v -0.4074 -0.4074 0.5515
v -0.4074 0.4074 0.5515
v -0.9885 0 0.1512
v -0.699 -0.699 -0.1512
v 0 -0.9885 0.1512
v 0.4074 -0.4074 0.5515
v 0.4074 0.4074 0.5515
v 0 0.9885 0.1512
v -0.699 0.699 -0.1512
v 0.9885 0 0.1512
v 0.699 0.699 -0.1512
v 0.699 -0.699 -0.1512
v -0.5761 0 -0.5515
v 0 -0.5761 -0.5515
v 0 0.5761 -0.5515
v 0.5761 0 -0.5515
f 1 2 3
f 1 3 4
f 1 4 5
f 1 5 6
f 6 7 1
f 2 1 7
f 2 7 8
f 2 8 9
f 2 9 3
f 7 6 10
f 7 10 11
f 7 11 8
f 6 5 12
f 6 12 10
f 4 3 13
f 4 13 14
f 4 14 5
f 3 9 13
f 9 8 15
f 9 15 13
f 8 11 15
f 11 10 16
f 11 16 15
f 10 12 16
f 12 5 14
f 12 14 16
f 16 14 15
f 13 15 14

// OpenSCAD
polyhedron( points = [[-0.407390948929162, -0.40739109956788, 0.551500488617618], [-0.407390948892581, 0.407391175698362, 0.551500488617618], [0.407391326300504, 0.407391175625202, 0.551500488617618], [0.40739132626392, -0.40739109956788, 0.551500488617618], [-0.69897385242257, -0.698974002873321, -0.151229172794004], [-0.988498156509498, 3.81335717500525e-08, 0.151229292580017], [-0.698973852268963, 0.698974079120829, -0.151229172794005], [1.88798379734391e-07, 0.988498383208234, 0.151229292615959], [0.698974229916702, 0.698974079111288, -0.151229172592068], [0.98849853382866, 3.79603310878026e-08, 0.151229292615959], [0.698974229763099, -0.698974003170991, -0.151229172592067], [1.886251391626e-07, -0.988498307114327, 0.151229292615959], [-0.576136256504436, 3.81299101504806e-08, -0.551499545157136], [-4.32302444849927e-07, 0.576140357879525, -0.551501818724187], [0.576134856718913, -5.70835233578617e-07, -0.551499251523032], [-4.32385661796708e-07, -0.57614028173762, -0.551501818721865]], faces = [[0, 1, 5], [0, 5, 4], [0, 4, 11], [0, 11, 3], [0, 3, 2, 1], [1, 2, 7], [1, 7, 6], [1, 6, 5], [2, 3, 9], [2, 9, 8], [2, 8, 7], [3, 11, 10], [3, 10, 9], [4, 5, 12], [4, 12, 15], [4, 15, 11], [5, 6, 12], [6, 7, 13], [6, 13, 12], [7, 8, 13], [8, 9, 14], [8, 14, 13], [9, 10, 14], [10, 11, 15], [10, 15, 14], [12, 13, 14, 15]]);
